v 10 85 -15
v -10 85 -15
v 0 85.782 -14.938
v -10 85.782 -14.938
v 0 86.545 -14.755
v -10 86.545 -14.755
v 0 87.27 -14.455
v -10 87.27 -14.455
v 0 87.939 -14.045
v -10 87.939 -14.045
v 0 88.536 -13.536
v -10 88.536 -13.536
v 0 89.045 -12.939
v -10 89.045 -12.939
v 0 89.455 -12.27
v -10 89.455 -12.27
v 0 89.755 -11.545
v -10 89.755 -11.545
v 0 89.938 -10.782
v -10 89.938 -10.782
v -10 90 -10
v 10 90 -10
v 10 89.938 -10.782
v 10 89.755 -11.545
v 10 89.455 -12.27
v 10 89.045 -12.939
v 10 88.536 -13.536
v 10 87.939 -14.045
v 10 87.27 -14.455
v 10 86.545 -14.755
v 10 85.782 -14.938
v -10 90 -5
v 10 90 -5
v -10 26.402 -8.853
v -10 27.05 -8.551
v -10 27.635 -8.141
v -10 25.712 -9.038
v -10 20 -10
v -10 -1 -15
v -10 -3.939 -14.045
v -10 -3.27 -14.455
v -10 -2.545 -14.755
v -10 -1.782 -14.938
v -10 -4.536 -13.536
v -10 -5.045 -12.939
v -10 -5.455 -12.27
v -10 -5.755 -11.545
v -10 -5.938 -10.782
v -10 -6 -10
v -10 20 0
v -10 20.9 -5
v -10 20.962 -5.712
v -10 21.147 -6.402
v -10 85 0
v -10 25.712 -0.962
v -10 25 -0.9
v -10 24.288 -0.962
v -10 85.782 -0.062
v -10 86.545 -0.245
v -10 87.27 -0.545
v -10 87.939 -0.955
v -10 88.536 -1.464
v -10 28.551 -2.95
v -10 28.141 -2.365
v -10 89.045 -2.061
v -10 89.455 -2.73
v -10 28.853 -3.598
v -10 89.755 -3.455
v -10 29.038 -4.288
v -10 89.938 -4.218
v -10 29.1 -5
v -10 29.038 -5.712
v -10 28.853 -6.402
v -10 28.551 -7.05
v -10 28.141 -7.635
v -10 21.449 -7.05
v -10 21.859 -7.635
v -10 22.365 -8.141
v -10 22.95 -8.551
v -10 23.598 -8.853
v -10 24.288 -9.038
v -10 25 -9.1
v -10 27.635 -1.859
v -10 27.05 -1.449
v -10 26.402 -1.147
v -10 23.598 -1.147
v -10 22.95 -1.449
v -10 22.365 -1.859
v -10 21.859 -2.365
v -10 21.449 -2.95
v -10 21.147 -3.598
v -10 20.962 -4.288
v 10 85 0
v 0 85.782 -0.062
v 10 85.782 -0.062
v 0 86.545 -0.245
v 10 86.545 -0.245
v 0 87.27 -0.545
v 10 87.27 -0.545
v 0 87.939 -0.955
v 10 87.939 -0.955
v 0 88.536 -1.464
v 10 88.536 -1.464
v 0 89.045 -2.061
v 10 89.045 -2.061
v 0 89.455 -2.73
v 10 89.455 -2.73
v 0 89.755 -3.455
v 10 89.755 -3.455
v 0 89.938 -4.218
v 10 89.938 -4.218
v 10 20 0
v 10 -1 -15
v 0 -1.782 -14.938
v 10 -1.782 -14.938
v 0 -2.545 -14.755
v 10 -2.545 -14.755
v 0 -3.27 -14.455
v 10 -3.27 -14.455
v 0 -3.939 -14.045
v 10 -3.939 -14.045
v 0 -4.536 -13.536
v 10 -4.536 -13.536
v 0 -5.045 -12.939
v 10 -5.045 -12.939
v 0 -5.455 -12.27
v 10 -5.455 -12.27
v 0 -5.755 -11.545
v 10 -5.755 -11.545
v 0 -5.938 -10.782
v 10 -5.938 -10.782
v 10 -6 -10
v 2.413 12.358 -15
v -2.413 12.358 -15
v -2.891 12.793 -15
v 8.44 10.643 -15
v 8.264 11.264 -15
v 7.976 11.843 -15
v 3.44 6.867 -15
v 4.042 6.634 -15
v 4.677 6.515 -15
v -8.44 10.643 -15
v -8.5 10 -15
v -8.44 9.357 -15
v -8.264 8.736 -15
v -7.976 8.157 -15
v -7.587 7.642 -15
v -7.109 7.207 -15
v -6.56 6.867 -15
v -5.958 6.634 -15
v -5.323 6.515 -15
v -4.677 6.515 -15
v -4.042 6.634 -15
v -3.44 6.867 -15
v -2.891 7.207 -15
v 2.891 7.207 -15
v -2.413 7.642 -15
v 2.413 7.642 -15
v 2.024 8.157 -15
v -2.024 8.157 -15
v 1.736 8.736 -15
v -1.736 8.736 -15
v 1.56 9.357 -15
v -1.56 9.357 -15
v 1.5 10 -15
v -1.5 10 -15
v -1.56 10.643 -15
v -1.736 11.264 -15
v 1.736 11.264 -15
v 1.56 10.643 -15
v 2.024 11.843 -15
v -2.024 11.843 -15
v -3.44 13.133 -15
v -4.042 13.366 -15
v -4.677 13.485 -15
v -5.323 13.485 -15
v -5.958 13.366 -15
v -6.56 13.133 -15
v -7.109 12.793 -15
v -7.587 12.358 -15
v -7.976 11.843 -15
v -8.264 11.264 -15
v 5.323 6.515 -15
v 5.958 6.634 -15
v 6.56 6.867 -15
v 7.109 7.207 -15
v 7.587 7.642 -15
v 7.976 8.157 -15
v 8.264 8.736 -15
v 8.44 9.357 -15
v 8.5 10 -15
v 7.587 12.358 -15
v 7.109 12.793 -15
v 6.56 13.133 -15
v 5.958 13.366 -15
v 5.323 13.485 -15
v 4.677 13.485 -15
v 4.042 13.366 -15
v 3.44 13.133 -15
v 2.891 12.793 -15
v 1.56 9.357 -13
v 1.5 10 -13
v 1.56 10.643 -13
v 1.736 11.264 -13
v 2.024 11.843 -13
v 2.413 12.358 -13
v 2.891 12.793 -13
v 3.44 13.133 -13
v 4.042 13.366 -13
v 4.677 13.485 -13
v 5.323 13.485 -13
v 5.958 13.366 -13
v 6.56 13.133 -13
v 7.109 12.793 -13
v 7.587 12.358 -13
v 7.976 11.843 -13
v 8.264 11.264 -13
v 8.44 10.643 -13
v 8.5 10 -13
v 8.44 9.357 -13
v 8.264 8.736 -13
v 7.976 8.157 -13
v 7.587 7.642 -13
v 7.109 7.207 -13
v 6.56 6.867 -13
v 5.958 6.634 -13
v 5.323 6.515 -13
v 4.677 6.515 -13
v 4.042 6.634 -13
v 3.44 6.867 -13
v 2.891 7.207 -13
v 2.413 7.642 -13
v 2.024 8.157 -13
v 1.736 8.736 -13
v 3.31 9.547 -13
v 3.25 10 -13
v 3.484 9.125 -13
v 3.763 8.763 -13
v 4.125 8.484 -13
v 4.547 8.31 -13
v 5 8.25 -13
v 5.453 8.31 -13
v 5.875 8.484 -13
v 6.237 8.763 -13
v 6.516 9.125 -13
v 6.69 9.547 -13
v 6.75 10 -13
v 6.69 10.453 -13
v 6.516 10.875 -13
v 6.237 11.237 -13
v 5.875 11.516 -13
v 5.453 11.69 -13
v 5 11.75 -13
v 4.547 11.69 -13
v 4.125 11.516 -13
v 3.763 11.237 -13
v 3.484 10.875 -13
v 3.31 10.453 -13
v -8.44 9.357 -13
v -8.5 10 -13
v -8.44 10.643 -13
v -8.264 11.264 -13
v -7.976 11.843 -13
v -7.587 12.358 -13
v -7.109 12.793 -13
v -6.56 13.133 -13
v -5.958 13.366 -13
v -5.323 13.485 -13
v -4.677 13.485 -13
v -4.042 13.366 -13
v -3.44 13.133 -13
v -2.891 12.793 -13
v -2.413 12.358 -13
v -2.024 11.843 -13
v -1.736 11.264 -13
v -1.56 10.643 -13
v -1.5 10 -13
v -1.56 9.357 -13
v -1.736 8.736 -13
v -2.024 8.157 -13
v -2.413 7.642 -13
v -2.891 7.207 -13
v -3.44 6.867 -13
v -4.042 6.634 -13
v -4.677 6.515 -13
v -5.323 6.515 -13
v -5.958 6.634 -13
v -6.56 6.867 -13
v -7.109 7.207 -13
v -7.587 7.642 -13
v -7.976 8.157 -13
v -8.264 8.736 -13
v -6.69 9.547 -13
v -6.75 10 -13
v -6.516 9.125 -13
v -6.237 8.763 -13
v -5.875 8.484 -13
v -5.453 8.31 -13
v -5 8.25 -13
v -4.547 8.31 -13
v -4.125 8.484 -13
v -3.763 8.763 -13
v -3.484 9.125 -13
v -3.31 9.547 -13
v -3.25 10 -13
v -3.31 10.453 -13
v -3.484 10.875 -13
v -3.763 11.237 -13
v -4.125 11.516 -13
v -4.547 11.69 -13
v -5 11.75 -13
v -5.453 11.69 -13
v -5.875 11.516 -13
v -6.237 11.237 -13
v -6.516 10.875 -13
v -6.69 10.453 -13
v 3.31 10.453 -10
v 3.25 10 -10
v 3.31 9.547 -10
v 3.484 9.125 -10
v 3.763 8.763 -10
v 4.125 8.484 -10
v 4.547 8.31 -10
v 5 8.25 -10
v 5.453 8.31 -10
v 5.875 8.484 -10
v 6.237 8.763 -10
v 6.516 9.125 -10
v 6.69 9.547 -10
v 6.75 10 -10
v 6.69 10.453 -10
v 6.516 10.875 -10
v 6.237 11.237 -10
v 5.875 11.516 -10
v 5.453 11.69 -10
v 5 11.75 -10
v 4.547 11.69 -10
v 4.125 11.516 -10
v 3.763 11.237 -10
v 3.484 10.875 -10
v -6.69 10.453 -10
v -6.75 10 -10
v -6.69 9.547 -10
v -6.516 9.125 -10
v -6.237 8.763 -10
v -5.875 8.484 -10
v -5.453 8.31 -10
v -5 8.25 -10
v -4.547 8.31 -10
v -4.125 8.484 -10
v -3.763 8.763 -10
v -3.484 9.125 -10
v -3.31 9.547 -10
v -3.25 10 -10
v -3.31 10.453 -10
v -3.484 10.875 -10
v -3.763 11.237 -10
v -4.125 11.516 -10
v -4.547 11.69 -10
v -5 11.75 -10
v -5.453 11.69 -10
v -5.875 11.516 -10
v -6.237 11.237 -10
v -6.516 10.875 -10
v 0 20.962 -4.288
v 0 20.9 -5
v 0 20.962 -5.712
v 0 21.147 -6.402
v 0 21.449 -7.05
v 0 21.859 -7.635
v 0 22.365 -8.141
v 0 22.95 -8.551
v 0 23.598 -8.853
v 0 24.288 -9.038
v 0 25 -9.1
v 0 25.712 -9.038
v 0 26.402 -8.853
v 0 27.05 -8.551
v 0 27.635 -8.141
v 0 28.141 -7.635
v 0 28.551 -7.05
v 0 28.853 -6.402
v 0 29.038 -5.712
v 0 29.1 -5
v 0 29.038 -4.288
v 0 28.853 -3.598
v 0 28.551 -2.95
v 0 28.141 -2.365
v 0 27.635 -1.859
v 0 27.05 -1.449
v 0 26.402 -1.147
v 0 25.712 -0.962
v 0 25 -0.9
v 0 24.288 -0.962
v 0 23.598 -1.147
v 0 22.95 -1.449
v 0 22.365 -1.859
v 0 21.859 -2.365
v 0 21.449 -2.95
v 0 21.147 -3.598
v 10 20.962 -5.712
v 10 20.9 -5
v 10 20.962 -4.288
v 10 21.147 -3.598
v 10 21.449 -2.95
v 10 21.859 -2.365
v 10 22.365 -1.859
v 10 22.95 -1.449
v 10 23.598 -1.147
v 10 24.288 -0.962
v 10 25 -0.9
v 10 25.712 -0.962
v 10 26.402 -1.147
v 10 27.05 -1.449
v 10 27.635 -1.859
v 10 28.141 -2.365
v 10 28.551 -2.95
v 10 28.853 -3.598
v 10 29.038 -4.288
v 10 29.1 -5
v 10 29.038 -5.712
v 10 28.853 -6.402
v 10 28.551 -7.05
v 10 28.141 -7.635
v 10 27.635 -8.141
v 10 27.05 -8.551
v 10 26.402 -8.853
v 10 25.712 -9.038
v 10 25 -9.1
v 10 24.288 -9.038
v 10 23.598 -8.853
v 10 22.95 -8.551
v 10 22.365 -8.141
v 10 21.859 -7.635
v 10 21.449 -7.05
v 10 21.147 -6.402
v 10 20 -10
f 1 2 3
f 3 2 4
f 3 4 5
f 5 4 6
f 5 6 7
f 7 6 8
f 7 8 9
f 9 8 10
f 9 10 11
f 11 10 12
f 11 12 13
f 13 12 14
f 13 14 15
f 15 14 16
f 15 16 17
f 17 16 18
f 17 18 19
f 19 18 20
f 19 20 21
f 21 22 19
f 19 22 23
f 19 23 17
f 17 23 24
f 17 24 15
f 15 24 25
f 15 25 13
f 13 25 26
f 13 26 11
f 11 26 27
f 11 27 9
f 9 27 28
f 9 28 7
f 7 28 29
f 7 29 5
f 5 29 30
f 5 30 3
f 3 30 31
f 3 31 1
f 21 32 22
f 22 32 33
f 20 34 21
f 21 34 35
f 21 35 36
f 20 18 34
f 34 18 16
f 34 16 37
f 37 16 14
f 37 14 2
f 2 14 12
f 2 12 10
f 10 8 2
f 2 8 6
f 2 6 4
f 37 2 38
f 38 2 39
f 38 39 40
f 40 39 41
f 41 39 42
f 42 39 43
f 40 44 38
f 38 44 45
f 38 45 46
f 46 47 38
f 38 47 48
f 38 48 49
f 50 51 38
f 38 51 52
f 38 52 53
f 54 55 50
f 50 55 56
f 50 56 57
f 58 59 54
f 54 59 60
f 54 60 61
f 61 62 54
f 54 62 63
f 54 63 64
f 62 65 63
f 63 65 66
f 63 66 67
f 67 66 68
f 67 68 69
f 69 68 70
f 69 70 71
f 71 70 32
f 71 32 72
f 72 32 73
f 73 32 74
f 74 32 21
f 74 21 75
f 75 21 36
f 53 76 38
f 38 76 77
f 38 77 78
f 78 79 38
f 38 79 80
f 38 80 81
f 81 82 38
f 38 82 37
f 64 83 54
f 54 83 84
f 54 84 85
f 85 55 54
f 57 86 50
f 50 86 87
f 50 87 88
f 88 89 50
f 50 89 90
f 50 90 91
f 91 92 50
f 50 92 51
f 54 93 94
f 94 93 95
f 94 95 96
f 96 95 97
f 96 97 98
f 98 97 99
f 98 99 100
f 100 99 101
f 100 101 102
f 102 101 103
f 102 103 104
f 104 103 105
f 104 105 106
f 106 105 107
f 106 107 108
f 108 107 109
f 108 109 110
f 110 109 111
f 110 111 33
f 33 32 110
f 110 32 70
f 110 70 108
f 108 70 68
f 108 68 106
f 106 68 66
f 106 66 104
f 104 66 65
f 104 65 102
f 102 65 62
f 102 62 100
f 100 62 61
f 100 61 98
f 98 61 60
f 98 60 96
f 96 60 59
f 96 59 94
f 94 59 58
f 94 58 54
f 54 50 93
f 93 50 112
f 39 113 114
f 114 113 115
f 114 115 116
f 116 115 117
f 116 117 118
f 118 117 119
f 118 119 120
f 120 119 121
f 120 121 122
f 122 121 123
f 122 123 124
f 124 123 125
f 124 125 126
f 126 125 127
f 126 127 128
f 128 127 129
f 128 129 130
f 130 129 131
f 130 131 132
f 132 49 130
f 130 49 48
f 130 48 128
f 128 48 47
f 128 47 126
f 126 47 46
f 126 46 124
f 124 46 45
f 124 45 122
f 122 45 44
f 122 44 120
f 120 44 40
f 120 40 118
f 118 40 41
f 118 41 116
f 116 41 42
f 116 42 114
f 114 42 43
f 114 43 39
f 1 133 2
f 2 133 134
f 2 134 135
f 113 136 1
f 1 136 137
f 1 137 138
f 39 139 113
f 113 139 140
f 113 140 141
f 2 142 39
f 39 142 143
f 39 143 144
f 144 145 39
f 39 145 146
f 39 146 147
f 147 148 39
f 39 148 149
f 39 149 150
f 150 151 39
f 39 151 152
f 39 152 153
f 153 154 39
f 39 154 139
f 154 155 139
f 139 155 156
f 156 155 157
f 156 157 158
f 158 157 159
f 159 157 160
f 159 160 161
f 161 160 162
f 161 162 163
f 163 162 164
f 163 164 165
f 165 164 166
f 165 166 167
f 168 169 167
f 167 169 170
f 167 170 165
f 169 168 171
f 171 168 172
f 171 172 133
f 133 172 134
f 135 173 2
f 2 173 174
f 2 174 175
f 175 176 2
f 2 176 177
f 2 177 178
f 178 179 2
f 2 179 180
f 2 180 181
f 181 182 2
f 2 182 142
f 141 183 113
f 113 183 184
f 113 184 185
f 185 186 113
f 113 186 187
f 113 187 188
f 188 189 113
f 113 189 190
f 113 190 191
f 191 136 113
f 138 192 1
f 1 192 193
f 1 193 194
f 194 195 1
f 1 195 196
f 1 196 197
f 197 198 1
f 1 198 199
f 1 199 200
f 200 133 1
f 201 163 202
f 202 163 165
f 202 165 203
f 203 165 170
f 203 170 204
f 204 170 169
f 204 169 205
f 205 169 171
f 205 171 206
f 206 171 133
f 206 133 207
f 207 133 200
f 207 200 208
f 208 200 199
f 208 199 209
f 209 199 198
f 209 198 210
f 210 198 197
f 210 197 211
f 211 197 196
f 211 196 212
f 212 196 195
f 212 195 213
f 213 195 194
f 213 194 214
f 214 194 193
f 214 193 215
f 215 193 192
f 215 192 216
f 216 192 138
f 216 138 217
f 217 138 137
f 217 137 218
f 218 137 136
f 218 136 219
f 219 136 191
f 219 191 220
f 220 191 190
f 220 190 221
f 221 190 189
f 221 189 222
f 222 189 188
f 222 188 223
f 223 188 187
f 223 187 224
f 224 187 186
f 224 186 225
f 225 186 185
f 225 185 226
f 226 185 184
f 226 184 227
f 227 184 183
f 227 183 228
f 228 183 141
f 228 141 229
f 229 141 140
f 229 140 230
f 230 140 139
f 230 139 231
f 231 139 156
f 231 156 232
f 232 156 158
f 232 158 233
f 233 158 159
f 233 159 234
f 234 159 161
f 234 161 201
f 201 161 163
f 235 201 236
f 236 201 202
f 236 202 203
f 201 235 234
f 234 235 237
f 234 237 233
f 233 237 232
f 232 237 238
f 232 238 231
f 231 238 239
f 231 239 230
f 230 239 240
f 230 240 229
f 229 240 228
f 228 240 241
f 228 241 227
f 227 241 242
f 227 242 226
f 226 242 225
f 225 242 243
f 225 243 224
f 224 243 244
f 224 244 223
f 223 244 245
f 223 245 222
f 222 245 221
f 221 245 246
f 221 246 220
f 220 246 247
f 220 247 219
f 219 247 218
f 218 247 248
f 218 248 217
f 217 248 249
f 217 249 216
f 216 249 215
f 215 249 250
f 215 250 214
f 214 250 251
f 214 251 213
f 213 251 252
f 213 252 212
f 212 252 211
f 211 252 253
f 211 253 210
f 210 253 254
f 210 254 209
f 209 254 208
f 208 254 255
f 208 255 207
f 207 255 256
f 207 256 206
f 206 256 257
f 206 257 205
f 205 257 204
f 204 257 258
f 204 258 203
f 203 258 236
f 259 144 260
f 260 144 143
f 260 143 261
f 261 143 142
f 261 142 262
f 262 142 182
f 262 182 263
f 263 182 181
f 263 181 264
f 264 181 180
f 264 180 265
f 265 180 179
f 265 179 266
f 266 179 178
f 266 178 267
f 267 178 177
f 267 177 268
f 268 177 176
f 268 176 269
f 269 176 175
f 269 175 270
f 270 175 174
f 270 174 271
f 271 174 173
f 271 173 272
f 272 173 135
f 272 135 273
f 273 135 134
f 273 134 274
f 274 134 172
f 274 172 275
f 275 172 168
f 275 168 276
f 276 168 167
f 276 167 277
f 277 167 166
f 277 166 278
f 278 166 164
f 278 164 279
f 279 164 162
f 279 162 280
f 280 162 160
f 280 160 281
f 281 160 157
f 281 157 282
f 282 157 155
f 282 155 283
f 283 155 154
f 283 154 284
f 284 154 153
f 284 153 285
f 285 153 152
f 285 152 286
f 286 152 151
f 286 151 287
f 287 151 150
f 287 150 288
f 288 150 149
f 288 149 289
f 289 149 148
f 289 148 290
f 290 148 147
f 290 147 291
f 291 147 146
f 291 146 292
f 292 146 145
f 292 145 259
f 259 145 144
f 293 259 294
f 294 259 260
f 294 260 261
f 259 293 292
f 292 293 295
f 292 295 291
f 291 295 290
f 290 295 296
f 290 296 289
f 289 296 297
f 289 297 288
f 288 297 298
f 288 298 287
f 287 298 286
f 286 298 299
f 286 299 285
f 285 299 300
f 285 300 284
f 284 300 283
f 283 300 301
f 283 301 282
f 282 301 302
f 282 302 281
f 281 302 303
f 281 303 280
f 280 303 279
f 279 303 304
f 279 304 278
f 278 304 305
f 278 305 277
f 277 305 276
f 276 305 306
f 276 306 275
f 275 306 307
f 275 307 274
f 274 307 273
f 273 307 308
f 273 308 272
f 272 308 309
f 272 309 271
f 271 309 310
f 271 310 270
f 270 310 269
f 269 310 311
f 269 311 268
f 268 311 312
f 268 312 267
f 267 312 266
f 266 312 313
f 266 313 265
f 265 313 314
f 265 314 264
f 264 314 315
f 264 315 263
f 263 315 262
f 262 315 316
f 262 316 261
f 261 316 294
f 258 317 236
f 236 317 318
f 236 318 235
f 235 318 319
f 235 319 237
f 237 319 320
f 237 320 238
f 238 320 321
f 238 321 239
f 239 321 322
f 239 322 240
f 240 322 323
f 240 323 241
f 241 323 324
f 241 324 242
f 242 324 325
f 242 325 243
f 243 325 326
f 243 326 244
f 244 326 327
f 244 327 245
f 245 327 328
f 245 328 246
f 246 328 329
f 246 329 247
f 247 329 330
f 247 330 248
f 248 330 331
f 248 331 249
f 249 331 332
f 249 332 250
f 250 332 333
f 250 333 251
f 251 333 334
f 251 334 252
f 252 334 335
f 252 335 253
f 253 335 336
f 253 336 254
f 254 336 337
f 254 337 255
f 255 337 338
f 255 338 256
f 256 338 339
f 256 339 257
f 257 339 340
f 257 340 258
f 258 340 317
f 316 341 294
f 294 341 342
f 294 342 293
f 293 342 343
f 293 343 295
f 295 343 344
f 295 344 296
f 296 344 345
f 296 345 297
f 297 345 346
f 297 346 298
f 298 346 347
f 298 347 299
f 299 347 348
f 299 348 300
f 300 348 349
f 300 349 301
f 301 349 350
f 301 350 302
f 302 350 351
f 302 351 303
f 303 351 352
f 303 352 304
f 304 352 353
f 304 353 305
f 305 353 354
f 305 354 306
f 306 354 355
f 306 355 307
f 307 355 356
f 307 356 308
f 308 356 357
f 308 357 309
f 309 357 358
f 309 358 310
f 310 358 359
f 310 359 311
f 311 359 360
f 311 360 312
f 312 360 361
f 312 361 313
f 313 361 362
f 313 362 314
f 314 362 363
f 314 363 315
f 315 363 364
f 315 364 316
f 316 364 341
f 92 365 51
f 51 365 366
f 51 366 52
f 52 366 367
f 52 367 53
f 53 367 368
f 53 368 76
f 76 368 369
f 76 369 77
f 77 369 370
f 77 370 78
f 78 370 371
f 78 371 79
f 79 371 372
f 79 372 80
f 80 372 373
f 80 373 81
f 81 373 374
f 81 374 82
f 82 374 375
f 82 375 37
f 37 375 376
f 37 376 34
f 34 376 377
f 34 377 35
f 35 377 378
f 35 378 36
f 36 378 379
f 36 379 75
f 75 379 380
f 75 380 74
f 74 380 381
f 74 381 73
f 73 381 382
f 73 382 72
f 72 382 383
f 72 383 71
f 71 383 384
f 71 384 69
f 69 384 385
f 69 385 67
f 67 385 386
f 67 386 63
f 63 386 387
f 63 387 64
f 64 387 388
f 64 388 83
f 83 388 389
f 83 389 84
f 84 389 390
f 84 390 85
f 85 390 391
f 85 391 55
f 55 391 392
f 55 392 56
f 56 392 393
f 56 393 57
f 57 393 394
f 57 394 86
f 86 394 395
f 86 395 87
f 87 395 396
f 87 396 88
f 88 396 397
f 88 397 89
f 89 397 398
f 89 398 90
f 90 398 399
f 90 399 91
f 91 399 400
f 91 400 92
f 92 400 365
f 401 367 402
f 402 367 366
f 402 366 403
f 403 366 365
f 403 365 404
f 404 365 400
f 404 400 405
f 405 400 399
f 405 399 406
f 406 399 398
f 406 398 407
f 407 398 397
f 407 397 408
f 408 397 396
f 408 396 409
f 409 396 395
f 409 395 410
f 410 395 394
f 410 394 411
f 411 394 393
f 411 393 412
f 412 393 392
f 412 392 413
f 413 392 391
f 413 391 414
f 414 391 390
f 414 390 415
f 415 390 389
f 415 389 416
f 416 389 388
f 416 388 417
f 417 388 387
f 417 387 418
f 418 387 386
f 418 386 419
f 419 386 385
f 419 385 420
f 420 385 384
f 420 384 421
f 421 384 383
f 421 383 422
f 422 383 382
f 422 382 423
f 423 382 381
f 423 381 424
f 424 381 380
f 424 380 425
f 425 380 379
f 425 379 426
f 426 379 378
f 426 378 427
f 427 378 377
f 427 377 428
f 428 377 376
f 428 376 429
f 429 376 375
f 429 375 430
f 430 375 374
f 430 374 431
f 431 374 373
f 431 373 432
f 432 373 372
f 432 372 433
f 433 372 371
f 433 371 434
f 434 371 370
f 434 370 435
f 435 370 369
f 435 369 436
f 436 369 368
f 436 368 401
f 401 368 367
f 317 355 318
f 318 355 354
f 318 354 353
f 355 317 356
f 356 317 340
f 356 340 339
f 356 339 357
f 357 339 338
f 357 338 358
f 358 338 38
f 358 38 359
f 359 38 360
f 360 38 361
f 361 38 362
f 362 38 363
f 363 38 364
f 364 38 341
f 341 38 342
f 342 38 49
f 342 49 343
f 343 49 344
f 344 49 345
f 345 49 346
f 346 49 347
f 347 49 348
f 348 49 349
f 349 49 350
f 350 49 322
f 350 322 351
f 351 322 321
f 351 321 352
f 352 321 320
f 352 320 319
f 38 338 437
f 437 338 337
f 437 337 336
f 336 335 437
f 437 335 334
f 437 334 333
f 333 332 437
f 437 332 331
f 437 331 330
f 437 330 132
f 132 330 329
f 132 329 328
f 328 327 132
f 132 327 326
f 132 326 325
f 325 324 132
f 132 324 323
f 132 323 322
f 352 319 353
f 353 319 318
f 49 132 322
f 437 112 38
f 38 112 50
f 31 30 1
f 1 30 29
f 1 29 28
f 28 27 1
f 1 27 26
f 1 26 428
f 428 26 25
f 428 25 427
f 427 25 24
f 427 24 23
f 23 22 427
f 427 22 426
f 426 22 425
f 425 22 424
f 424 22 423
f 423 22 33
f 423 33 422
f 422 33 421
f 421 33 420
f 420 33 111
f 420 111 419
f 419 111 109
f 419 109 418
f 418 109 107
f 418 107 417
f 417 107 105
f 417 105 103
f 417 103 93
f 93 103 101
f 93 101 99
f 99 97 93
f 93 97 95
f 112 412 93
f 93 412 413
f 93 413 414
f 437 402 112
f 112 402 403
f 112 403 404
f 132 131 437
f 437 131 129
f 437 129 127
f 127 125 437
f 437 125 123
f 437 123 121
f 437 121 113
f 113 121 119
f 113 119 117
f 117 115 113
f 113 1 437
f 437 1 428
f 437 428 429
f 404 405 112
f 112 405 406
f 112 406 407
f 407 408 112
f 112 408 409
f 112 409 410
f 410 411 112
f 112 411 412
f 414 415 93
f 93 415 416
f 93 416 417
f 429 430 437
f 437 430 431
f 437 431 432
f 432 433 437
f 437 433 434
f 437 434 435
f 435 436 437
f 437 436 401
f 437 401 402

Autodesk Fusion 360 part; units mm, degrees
sketch "Skizze4" plane through (0, 0, 0) normal (0, 0, 1) x (1, 0, 0)
  line L0 (1.5, -6) -> (-1.5, -6)
  line L1 (-1.5, -6) -> (-1.5, 0)
  line L2 (-1.5, 0) -> (1.5, 0)
  line L3 (1.5, 0) -> (1.5, -6)
  line L4 (1.5, -6) -> (-1.5, 0) construction
  line L5 (-1.5, -6) -> (1.5, 0) construction
  line L6 (0, 9.7025) -> (0, -8.7035) construction
  line L7 (-7.2352, -6) -> (6.1757, -6) construction
  point P0 (0, -3)
  point P1 (0, -6)
  dimension "d21" = 3
  dimension "d22" = 6
ref_plane "Arbeitsebene1" through (0, 0, -6.5) normal (0, 0, 1) x (1, 0, 0)
sketch "Skizze7" plane through (0, 0, -6.5) normal (0, 0, 1) x (1, 0, 0)
  line L0 (-16.0259, 10) -> (20, 10) construction
  line L1 (-5, 21.68) -> (-5, -11.619) construction
  line L2 (5, 22.2413) -> (5, -12.5543) construction
  line L3 (-2.05, 11.7032) -> (-5, 13.4064)
  line L4 (-5, 13.4064) -> (-7.95, 11.7032)
  line L5 (-7.95, 11.7032) -> (-7.95, 8.2968)
  line L6 (-7.95, 8.2968) -> (-5, 6.5936)
  line L7 (-5, 6.5936) -> (-2.05, 8.2968)
  line L8 (-2.05, 8.2968) -> (-2.05, 11.7032)
  line L9 (7.95, 11.7032) -> (5, 13.4064)
  line L10 (5, 13.4064) -> (2.05, 11.7032)
  line L11 (2.05, 11.7032) -> (2.05, 8.2968)
  line L12 (2.05, 8.2968) -> (5, 6.5936)
  line L13 (5, 6.5936) -> (7.95, 8.2968)
  line L14 (7.95, 8.2968) -> (7.95, 11.7032)
  line L15 (-15.7752, 15) -> (18.7006, 15) construction
  line L16 (0, 22.633) -> (0, -9.7229) construction
  line L17 (2.95, 16.7032) -> (0, 18.4064)
  line L18 (0, 18.4064) -> (-2.95, 16.7032)
  line L19 (-2.95, 16.7032) -> (-2.95, 13.2968)
  line L20 (-2.95, 13.2968) -> (0, 11.5936)
  line L21 (0, 11.5936) -> (2.95, 13.2968)
  line L22 (2.95, 13.2968) -> (2.95, 16.7032)
  point P0 (-5, 10)
  point P1 (5, 10)
  point P2 (-5, 10)
  point P3 (5, 10)
  point P4 (0, 15)
  point P5 (0, 15)
  dimension "d47" = 5.9
  dimension "d48" = 5.9
  dimension "d51" = 15
  dimension "d52" = 5.9
  dimension "d117" = 10
  dimension "d118" = 5
  dimension "d119" = 5
sketch "Skizze1" plane through (0, 0, 0) normal (1, 0, 0) x (0, 1, 0) in component "Unterteil"
  line L0 (0, 9.24) -> (0, -14) construction
  line L1 (-13.3055, 0) -> (32, 0) construction
  line L2 (-6, -10) -> (20, -10)
  line L3 (20, -10) -> (20, 0)
  line L4 (90, 0) -> (90, -15)
  line L5 (90, -15) -> (-6, -15)
  line L6 (-6, -15) -> (-6, -10)
  line L7 (90, 0) -> (20, 0)
  line L8 (25, 1.4735) -> (25, -18) construction
  line L9 (33.3576, -5) -> (21.4671, -5) construction
  circle A0 centre (25, -5) radius 4.1
  dimension "d60" = 70
  dimension "d61" = 15
  dimension "d64" = 8.2
  dimension "d120" = 25
  dimension "d121" = 5
  dimension "d122" = 15
  dimension "d123" = 10
  dimension "d124" = 20
  dimension "d125" = 6
extrude "Extrusion1" add sketch "Skizze1" along normal mid plane 20 in component "Unterteil"
sketch "Skizze2" plane through (0, 0, -15) normal (0, 0, -1) x (1, 0, 0) in component "Unterteil"
  line L0 (-10, -90) -> (10, -90)
  line L1 (10, -90) -> (10, 6)
  line L2 (10, 6) -> (-10, 6)
  line L3 (-10, 6) -> (-10, -90)
  line L4 (14.3477, -10) -> (-22.3478, -10) construction
  line L5 (5, -37) -> (5, 12.4856) construction
  line L6 (-5, -37.5119) -> (-5, 12) construction
  circle A0 centre (-5, -10) radius 1.75
  circle A1 centre (5, -10) radius 1.75
  circle A2 centre (5, -10) radius 3.5
  circle A3 centre (-5, -10) radius 3.5
  dimension "d67" = 16
  dimension "d68" = 5
  dimension "d69" = 5
  dimension "d70" = 3.5
  dimension "d71" = 3.5
  dimension "d72" = 7
  dimension "d73" = 7
extrude "Extrusion2" cut sketch "Skizze2" against normal blind 10 contours A0 | A1 in component "Unterteil"
extrude "Extrusion3" cut sketch "Skizze2" against normal blind 2 contours A2 | A3 in component "Unterteil"
fillet "Abrundung3" radius 5 1 edges at (0, -6, -15) in component "Unterteil"
fillet "Abrundung4" radius 5 1 edges at (0, 90, 0) in component "Unterteil"
fillet "Abrundung5" radius 5 1 edges at (0, 90, -15) in component "Unterteil"
component "Unterteil" placed x (1, 0, 0) y (0, 1, 0) z (0, 0, 1) at (0, 0, 0)
component "Basis" placed x (1, 0, 0) y (0, 1, 0) z (0, 0, 1) at (0, 0, 0)
